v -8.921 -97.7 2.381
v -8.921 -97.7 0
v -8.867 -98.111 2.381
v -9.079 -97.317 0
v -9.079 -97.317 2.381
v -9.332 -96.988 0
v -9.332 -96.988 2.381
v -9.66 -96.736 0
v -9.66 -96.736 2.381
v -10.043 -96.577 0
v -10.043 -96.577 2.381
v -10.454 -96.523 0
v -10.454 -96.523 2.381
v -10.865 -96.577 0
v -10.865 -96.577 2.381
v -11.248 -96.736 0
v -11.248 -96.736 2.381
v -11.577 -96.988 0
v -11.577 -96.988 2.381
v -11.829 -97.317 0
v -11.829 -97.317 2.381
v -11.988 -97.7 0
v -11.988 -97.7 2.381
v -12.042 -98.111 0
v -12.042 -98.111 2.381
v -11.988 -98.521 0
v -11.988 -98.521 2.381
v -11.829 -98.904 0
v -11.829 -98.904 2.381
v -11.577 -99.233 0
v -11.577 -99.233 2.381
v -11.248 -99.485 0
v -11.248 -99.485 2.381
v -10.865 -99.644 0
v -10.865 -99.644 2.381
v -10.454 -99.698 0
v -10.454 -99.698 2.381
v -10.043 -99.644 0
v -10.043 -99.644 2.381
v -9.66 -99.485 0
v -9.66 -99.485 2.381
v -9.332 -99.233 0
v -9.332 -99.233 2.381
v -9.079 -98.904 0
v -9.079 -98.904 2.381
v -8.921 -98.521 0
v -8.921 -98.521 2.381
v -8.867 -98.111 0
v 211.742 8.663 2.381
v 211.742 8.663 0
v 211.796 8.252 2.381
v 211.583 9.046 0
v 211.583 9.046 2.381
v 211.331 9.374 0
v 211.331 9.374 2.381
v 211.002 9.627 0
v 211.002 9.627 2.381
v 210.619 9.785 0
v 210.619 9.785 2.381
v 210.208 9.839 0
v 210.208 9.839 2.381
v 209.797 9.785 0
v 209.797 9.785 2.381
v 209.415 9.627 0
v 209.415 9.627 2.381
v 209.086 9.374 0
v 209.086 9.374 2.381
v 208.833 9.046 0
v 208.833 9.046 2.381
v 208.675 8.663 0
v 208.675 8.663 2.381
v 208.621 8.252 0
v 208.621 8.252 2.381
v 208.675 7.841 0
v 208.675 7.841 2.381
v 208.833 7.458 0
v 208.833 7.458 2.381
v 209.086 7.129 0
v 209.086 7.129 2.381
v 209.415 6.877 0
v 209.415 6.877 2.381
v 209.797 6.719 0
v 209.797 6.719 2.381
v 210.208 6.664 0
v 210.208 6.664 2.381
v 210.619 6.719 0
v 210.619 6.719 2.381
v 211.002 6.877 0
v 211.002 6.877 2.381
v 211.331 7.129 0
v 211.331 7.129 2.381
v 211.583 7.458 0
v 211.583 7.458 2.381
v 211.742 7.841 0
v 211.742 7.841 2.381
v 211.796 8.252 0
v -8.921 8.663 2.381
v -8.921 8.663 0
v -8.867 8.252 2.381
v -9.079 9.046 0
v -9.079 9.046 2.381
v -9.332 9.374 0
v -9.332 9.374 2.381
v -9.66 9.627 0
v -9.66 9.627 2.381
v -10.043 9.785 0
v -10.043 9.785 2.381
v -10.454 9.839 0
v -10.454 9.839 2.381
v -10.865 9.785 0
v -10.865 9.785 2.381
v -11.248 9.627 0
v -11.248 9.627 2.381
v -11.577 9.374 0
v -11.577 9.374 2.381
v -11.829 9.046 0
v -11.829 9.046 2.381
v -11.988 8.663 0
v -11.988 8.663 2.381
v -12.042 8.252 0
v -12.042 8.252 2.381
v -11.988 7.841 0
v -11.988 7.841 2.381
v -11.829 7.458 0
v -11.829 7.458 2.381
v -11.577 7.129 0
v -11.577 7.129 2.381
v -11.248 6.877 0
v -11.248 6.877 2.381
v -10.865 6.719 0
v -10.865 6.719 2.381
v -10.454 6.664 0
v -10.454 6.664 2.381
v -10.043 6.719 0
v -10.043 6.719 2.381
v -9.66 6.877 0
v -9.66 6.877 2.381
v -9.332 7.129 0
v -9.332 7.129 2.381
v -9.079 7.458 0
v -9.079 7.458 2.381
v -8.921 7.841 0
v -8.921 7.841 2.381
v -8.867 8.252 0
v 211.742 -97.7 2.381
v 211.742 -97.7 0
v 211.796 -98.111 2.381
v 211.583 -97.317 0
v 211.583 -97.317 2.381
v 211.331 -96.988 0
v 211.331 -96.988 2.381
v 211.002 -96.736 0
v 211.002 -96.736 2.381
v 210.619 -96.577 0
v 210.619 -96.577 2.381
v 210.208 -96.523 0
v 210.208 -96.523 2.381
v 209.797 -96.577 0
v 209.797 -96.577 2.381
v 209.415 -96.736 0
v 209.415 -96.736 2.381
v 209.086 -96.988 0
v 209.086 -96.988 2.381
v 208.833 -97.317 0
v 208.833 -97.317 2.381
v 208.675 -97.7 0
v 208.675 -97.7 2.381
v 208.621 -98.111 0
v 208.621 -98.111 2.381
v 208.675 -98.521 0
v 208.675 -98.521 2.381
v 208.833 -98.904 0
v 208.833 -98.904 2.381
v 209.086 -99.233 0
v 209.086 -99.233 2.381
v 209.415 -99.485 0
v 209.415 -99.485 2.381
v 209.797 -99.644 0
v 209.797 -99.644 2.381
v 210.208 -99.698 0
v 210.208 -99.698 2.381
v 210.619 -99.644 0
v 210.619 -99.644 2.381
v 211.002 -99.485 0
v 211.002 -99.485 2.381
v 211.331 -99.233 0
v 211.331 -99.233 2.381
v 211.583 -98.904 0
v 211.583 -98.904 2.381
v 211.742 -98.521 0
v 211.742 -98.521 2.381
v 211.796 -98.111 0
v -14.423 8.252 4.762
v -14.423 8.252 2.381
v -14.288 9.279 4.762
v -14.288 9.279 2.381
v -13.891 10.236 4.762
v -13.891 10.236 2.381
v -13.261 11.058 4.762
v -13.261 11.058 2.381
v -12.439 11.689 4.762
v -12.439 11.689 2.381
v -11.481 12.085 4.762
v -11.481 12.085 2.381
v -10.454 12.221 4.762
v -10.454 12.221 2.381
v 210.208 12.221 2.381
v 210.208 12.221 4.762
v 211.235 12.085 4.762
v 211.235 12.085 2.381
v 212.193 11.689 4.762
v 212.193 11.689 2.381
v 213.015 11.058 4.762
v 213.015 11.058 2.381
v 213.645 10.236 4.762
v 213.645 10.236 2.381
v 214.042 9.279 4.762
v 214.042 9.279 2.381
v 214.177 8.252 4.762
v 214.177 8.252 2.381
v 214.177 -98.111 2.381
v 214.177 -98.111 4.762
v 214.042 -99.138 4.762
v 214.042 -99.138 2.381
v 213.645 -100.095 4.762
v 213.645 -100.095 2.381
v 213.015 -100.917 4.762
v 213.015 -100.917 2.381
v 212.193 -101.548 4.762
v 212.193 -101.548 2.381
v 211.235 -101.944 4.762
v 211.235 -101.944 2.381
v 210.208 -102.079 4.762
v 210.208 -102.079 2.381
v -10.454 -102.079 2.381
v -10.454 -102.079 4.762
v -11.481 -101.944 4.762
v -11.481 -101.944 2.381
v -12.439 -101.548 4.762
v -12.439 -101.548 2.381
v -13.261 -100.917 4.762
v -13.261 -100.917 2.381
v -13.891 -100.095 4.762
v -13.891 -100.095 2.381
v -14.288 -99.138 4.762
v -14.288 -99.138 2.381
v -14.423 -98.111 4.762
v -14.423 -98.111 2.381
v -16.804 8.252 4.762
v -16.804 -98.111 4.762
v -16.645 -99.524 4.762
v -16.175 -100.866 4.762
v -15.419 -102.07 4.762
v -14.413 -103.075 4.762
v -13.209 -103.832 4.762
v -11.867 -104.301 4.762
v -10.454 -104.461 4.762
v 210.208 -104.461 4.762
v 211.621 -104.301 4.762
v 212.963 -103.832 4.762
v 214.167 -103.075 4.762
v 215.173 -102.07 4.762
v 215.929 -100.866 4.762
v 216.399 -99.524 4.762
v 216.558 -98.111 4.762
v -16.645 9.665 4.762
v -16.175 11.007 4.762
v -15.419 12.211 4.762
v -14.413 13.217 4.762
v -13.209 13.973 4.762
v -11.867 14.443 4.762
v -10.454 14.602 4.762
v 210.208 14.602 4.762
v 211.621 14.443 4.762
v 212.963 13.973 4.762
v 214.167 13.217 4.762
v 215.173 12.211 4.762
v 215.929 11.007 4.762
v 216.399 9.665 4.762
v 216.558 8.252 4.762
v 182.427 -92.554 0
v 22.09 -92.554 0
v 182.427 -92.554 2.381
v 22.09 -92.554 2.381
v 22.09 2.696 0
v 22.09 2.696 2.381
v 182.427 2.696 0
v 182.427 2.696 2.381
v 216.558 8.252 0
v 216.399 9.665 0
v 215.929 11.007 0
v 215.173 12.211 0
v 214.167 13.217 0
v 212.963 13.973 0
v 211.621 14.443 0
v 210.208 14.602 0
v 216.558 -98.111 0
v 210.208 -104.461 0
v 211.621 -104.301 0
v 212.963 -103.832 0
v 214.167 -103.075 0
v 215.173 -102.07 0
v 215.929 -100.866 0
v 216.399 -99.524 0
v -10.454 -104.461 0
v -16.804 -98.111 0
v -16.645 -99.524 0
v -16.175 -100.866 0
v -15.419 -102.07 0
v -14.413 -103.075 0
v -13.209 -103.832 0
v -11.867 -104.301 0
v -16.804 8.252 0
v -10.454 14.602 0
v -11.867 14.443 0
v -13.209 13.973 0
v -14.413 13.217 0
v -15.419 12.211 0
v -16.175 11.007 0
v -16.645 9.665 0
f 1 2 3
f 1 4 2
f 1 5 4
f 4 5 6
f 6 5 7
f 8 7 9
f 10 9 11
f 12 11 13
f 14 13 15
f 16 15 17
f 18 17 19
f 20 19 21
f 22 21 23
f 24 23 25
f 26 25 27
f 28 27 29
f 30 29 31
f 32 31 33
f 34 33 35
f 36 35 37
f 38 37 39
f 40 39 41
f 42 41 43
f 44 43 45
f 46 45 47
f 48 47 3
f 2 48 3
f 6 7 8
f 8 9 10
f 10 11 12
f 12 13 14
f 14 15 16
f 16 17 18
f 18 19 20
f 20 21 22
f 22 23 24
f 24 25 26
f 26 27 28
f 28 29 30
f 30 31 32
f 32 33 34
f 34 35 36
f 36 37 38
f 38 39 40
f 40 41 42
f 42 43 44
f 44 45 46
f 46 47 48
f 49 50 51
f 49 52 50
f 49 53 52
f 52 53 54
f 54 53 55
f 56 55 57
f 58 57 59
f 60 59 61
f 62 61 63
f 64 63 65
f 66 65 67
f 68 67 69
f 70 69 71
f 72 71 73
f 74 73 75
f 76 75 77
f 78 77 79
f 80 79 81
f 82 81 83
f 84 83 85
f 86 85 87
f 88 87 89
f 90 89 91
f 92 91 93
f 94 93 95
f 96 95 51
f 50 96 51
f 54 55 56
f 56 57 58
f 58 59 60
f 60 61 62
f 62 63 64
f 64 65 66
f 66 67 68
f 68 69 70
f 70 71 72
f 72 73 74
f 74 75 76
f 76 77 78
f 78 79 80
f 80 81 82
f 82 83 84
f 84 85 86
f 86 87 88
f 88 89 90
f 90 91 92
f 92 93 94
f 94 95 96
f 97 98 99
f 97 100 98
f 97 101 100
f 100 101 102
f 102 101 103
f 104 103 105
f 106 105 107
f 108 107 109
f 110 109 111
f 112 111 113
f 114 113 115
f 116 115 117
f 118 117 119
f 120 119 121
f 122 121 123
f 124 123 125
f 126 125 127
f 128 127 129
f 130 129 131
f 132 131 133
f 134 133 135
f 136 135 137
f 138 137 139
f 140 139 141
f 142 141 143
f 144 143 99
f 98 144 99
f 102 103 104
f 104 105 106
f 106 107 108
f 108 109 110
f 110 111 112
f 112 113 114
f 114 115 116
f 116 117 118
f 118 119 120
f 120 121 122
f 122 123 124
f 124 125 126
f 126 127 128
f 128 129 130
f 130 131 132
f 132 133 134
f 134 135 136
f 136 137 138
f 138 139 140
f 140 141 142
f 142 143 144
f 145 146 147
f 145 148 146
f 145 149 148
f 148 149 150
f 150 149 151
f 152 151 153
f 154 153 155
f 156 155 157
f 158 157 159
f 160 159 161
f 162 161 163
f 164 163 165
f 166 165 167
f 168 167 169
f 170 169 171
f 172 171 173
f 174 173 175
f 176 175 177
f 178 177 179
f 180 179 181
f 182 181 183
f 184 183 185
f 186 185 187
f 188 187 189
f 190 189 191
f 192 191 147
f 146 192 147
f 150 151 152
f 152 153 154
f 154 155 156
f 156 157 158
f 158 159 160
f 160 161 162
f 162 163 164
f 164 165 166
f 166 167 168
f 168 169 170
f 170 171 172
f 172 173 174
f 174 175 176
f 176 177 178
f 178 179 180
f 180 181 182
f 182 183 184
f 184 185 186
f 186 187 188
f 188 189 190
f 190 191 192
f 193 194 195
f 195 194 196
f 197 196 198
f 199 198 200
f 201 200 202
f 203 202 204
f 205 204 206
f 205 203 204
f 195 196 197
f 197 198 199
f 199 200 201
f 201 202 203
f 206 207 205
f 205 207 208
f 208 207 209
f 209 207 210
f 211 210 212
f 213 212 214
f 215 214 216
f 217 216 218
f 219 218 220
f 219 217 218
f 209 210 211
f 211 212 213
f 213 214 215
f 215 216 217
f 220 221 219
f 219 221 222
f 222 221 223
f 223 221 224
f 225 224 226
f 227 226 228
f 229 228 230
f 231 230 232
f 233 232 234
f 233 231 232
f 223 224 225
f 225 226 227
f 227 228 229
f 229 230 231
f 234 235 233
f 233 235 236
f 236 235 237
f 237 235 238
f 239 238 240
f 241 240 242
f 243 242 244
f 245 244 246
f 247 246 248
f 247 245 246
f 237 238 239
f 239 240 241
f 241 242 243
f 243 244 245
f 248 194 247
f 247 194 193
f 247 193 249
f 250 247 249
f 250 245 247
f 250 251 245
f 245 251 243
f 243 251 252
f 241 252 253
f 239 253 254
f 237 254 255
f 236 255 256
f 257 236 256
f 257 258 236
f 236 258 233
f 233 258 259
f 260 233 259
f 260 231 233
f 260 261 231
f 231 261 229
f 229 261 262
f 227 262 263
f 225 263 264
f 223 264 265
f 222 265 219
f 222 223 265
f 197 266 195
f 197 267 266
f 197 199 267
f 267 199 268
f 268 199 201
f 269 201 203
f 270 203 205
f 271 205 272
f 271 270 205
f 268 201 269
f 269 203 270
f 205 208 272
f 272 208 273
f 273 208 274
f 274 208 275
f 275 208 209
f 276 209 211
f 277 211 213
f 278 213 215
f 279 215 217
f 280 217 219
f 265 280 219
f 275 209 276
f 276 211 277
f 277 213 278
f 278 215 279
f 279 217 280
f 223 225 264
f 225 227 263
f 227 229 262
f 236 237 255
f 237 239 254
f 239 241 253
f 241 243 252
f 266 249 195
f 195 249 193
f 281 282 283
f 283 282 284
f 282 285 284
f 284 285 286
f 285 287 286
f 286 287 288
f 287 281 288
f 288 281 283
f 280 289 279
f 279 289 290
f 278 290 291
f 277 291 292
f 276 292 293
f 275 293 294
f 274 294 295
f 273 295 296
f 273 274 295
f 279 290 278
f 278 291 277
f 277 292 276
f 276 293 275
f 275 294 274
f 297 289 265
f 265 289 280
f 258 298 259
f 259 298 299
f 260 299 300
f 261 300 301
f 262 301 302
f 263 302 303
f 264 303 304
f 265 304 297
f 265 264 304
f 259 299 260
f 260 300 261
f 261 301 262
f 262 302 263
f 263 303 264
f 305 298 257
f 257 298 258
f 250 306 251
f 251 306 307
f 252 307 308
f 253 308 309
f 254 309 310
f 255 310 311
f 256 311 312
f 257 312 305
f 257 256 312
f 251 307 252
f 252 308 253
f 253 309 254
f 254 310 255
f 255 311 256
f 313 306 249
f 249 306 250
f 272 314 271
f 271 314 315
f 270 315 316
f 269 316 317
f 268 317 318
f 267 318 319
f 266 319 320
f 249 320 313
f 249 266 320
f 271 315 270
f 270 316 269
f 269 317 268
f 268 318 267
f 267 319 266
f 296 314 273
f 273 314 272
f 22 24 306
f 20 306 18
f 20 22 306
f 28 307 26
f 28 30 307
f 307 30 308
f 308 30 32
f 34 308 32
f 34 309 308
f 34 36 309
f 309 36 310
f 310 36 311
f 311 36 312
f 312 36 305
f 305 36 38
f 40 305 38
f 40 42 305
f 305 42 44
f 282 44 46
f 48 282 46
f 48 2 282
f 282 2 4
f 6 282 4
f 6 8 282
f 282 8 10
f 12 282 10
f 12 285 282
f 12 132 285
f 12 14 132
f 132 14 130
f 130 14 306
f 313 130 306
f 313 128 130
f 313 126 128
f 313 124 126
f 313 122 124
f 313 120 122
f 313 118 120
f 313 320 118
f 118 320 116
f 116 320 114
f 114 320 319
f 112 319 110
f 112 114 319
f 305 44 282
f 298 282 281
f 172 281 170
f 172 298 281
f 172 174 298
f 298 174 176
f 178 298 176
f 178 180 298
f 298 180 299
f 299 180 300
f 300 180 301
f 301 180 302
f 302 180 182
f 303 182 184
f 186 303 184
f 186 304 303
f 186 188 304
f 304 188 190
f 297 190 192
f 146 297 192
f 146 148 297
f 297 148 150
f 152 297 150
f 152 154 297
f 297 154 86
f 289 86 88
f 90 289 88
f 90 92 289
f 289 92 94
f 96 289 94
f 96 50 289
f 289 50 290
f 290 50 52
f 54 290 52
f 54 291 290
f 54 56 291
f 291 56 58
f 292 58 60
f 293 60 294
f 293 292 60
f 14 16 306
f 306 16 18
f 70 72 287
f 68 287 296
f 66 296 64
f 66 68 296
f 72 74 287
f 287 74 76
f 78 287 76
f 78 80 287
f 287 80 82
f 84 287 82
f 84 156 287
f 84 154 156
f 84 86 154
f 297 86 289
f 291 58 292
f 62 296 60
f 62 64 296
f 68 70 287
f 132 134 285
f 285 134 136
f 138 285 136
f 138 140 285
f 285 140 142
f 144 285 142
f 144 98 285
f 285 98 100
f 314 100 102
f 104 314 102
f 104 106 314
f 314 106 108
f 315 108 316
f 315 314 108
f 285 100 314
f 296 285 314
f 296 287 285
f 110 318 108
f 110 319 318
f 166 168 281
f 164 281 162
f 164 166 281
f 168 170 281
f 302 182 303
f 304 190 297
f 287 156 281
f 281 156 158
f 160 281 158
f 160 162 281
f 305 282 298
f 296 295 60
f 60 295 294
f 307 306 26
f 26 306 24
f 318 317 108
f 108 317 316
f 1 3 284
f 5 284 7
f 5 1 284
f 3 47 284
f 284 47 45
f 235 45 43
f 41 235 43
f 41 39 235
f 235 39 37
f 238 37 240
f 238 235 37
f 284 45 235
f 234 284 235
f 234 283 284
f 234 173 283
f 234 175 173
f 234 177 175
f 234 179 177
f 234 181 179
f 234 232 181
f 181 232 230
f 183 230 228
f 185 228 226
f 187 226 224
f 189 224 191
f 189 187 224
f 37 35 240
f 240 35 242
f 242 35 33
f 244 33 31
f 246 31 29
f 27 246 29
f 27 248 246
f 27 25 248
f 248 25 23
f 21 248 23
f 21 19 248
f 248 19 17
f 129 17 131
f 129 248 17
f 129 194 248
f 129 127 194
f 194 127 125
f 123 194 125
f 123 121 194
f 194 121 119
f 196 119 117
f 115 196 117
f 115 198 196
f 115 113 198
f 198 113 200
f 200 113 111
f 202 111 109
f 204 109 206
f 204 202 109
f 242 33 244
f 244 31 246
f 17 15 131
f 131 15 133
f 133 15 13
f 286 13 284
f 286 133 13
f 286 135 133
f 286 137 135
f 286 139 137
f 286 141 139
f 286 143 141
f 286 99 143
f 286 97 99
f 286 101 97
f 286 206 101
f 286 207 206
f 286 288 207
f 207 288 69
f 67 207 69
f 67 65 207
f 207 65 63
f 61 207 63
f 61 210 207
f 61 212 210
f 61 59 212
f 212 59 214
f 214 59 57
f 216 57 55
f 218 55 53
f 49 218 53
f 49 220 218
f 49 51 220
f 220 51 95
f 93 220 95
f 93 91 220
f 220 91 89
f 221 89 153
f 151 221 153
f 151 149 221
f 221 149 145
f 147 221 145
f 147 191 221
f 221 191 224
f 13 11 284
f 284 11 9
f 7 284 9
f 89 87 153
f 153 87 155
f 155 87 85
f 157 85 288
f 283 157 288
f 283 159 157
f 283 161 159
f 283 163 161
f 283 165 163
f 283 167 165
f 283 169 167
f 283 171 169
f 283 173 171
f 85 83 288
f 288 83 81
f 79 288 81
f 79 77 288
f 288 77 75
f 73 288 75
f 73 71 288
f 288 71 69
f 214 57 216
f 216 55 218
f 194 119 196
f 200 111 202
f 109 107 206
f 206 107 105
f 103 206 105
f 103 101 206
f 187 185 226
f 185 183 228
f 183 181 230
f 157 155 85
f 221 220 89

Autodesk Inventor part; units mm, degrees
ref_plane "YZ Plane" through (0, 0, 0) normal (1, 0, 0) x (0, 1, 0)
ref_plane "XZ Plane" through (0, 0, 0) normal (0, 1, 0) x (-1, 0, 0)
ref_plane "XY Plane" through (0, 0, 0) normal (0, 0, 1) x (1, 0, 0)
sketch "Sketch1" plane through (0, 0, 0) normal (0, 0, 1) x (1, 0, 0)
  line L0 (-10.4542, 14.6019) -> (210.2083, 14.6019)
  line L1 (216.5583, 8.2519) -> (216.5583, -98.1106)
  line L2 (210.2083, -104.4606) -> (-10.4542, -104.4606)
  line L3 (-16.8042, -98.1106) -> (-16.8042, 8.2519)
  line L4 (99.877, 12.2207) -> (-10.4542, 12.2207)
  line L5 (-14.423, 8.2519) -> (-14.423, -44.9293)
  line L6 (99.877, 12.2207) -> (210.2083, 12.2207)
  line L7 (214.177, 8.2519) -> (214.177, -44.9293)
  line L8 (99.877, -102.0793) -> (210.2083, -102.0793)
  line L9 (214.177, -98.1106) -> (214.177, -44.9293)
  line L10 (99.877, -102.0793) -> (-10.4542, -102.0793)
  line L11 (-14.423, -98.1106) -> (-14.423, -44.9293)
  arc A0 (-10.4542, 14.6019) -> (-16.8042, 8.2519) centre (-10.4542, 8.2519) ccw
  arc A1 (216.5583, 8.2519) -> (210.2083, 14.6019) centre (210.2083, 8.2519) ccw
  arc A2 (210.2083, -104.4606) -> (216.5583, -98.1106) centre (210.2083, -98.1106) ccw
  arc A3 (-16.8042, -98.1106) -> (-10.4542, -104.4606) centre (-10.4542, -98.1106) ccw
  arc A4 (-10.4542, 12.2207) -> (-14.423, 8.2519) centre (-10.4542, 8.2519) ccw
  arc A5 (214.177, 8.2519) -> (210.2083, 12.2207) centre (210.2083, 8.2519) ccw
  arc A6 (210.2083, -102.0793) -> (214.177, -98.1106) centre (210.2083, -98.1106) ccw
  arc A7 (-14.423, -98.1106) -> (-10.4542, -102.0793) centre (-10.4542, -98.1106) ccw
  line L12 (99.877, 2.6957) -> (22.0895, 2.6957)
  line L13 (22.0895, 2.6957) -> (22.0895, -44.9293)
  line L14 (99.877, 2.6957) -> (182.427, 2.6957)
  line L15 (182.427, 2.6957) -> (182.427, -44.9293)
  line L16 (99.877, -92.5543) -> (182.427, -92.5543)
  line L17 (182.427, -92.5543) -> (182.427, -44.9293)
  line L18 (99.877, -92.5543) -> (22.0895, -92.5543)
  line L19 (22.0895, -92.5543) -> (22.0895, -44.9293)
  point P0 (0, 0)
  point P1 (-16.8042, 14.6019)
  point P2 (216.5583, -104.4606)
  point P3 (216.5583, 14.6019)
  point P4 (-16.8042, -104.4606)
  dimension "d0" = 233.3625
  dimension "d1" = 119.0625
  dimension "d9" = 6.35
  dimension "d10" = 3.9688
  dimension "d37" = 31.75
  dimension "d38" = 36.5125
  dimension "d39" = 9.525
  dimension "d40" = 9.525
extrude "Extrusion5" add sketch "Sketch1" along normal blind 2.3813 contours L0 A1 L1 A2 L2 A3 L3 A0 | L6 A5 L7 L9 A6 L8 L10 A7 L11 L5 A4 L4
sketch "Sketch6" plane through (0, 0, 2.3813) normal (0, 0, 1) x (1, 0, 0)
  line L0 (210.2083, 14.6019) -> (-10.4542, 14.6019) projected
  arc A0 (-10.4542, 14.6019) -> (-16.8042, 8.2519) centre (-10.4542, 8.2519) ccw projected
  line L1 (-16.8042, 8.2519) -> (-16.8042, -98.1106) projected
  arc A1 (-16.8042, -98.1106) -> (-10.4542, -104.4606) centre (-10.4542, -98.1106) ccw projected
  line L2 (-10.4542, -104.4606) -> (210.2083, -104.4606) projected
  arc A2 (210.2083, -104.4606) -> (216.5583, -98.1106) centre (210.2083, -98.1106) ccw projected
  line L3 (216.5583, -98.1106) -> (216.5583, 8.2519) projected
  arc A3 (216.5583, 8.2519) -> (210.2083, 14.6019) centre (210.2083, 8.2519) ccw projected
  line L4 (99.877, 12.2207) -> (-10.4542, 12.2207)
  line L5 (-14.423, 8.2519) -> (-14.423, -44.9293)
  line L6 (99.877, 12.2207) -> (210.2083, 12.2207)
  line L7 (214.177, 8.2519) -> (214.177, -44.9293)
  line L8 (99.877, -102.0793) -> (210.2083, -102.0793)
  line L9 (214.177, -98.1106) -> (214.177, -44.9293)
  line L10 (99.877, -102.0793) -> (-10.4542, -102.0793)
  line L11 (-14.423, -98.1106) -> (-14.423, -44.9293)
  arc A4 (-10.4542, 12.2207) -> (-14.423, 8.2519) centre (-10.4542, 8.2519) ccw
  arc A5 (214.177, 8.2519) -> (210.2083, 12.2207) centre (210.2083, 8.2519) ccw
  arc A6 (210.2083, -102.0793) -> (214.177, -98.1106) centre (210.2083, -98.1106) ccw
  arc A7 (-14.423, -98.1106) -> (-10.4542, -102.0793) centre (-10.4542, -98.1106) ccw
  point P0 (0, 0)
  dimension "d47" = 3.9688
extrude "Extrusion6" add sketch "Sketch6" along normal blind 2.3813
sketch "Sketch12" plane through (0, 0, 0) normal (0, 0, -1) x (-1, 0, 0)
  arc A0 (-210.2083, 14.6019) -> (-216.5583, 8.2519) centre (-210.2083, 8.2519) ccw projected
  arc A1 (-216.5583, -98.1106) -> (-210.2083, -104.4606) centre (-210.2083, -98.1106) ccw projected
  arc A2 (10.4542, -104.4606) -> (16.8042, -98.1106) centre (10.4542, -98.1106) ccw projected
  arc A3 (16.8042, 8.2519) -> (10.4542, 14.6019) centre (10.4542, 8.2519) ccw projected
  point P0 (0, 0)
hole "Hole2" at (210.2083, 8.2519, 0) at (-10.4542, 8.2519, 0) at (-10.4542, -98.1106, 0) at (210.2083, -98.1106, 0) direction (0, 0, 1) diameter 3.175 end through all
properties part number "Master Tablet Cover"
